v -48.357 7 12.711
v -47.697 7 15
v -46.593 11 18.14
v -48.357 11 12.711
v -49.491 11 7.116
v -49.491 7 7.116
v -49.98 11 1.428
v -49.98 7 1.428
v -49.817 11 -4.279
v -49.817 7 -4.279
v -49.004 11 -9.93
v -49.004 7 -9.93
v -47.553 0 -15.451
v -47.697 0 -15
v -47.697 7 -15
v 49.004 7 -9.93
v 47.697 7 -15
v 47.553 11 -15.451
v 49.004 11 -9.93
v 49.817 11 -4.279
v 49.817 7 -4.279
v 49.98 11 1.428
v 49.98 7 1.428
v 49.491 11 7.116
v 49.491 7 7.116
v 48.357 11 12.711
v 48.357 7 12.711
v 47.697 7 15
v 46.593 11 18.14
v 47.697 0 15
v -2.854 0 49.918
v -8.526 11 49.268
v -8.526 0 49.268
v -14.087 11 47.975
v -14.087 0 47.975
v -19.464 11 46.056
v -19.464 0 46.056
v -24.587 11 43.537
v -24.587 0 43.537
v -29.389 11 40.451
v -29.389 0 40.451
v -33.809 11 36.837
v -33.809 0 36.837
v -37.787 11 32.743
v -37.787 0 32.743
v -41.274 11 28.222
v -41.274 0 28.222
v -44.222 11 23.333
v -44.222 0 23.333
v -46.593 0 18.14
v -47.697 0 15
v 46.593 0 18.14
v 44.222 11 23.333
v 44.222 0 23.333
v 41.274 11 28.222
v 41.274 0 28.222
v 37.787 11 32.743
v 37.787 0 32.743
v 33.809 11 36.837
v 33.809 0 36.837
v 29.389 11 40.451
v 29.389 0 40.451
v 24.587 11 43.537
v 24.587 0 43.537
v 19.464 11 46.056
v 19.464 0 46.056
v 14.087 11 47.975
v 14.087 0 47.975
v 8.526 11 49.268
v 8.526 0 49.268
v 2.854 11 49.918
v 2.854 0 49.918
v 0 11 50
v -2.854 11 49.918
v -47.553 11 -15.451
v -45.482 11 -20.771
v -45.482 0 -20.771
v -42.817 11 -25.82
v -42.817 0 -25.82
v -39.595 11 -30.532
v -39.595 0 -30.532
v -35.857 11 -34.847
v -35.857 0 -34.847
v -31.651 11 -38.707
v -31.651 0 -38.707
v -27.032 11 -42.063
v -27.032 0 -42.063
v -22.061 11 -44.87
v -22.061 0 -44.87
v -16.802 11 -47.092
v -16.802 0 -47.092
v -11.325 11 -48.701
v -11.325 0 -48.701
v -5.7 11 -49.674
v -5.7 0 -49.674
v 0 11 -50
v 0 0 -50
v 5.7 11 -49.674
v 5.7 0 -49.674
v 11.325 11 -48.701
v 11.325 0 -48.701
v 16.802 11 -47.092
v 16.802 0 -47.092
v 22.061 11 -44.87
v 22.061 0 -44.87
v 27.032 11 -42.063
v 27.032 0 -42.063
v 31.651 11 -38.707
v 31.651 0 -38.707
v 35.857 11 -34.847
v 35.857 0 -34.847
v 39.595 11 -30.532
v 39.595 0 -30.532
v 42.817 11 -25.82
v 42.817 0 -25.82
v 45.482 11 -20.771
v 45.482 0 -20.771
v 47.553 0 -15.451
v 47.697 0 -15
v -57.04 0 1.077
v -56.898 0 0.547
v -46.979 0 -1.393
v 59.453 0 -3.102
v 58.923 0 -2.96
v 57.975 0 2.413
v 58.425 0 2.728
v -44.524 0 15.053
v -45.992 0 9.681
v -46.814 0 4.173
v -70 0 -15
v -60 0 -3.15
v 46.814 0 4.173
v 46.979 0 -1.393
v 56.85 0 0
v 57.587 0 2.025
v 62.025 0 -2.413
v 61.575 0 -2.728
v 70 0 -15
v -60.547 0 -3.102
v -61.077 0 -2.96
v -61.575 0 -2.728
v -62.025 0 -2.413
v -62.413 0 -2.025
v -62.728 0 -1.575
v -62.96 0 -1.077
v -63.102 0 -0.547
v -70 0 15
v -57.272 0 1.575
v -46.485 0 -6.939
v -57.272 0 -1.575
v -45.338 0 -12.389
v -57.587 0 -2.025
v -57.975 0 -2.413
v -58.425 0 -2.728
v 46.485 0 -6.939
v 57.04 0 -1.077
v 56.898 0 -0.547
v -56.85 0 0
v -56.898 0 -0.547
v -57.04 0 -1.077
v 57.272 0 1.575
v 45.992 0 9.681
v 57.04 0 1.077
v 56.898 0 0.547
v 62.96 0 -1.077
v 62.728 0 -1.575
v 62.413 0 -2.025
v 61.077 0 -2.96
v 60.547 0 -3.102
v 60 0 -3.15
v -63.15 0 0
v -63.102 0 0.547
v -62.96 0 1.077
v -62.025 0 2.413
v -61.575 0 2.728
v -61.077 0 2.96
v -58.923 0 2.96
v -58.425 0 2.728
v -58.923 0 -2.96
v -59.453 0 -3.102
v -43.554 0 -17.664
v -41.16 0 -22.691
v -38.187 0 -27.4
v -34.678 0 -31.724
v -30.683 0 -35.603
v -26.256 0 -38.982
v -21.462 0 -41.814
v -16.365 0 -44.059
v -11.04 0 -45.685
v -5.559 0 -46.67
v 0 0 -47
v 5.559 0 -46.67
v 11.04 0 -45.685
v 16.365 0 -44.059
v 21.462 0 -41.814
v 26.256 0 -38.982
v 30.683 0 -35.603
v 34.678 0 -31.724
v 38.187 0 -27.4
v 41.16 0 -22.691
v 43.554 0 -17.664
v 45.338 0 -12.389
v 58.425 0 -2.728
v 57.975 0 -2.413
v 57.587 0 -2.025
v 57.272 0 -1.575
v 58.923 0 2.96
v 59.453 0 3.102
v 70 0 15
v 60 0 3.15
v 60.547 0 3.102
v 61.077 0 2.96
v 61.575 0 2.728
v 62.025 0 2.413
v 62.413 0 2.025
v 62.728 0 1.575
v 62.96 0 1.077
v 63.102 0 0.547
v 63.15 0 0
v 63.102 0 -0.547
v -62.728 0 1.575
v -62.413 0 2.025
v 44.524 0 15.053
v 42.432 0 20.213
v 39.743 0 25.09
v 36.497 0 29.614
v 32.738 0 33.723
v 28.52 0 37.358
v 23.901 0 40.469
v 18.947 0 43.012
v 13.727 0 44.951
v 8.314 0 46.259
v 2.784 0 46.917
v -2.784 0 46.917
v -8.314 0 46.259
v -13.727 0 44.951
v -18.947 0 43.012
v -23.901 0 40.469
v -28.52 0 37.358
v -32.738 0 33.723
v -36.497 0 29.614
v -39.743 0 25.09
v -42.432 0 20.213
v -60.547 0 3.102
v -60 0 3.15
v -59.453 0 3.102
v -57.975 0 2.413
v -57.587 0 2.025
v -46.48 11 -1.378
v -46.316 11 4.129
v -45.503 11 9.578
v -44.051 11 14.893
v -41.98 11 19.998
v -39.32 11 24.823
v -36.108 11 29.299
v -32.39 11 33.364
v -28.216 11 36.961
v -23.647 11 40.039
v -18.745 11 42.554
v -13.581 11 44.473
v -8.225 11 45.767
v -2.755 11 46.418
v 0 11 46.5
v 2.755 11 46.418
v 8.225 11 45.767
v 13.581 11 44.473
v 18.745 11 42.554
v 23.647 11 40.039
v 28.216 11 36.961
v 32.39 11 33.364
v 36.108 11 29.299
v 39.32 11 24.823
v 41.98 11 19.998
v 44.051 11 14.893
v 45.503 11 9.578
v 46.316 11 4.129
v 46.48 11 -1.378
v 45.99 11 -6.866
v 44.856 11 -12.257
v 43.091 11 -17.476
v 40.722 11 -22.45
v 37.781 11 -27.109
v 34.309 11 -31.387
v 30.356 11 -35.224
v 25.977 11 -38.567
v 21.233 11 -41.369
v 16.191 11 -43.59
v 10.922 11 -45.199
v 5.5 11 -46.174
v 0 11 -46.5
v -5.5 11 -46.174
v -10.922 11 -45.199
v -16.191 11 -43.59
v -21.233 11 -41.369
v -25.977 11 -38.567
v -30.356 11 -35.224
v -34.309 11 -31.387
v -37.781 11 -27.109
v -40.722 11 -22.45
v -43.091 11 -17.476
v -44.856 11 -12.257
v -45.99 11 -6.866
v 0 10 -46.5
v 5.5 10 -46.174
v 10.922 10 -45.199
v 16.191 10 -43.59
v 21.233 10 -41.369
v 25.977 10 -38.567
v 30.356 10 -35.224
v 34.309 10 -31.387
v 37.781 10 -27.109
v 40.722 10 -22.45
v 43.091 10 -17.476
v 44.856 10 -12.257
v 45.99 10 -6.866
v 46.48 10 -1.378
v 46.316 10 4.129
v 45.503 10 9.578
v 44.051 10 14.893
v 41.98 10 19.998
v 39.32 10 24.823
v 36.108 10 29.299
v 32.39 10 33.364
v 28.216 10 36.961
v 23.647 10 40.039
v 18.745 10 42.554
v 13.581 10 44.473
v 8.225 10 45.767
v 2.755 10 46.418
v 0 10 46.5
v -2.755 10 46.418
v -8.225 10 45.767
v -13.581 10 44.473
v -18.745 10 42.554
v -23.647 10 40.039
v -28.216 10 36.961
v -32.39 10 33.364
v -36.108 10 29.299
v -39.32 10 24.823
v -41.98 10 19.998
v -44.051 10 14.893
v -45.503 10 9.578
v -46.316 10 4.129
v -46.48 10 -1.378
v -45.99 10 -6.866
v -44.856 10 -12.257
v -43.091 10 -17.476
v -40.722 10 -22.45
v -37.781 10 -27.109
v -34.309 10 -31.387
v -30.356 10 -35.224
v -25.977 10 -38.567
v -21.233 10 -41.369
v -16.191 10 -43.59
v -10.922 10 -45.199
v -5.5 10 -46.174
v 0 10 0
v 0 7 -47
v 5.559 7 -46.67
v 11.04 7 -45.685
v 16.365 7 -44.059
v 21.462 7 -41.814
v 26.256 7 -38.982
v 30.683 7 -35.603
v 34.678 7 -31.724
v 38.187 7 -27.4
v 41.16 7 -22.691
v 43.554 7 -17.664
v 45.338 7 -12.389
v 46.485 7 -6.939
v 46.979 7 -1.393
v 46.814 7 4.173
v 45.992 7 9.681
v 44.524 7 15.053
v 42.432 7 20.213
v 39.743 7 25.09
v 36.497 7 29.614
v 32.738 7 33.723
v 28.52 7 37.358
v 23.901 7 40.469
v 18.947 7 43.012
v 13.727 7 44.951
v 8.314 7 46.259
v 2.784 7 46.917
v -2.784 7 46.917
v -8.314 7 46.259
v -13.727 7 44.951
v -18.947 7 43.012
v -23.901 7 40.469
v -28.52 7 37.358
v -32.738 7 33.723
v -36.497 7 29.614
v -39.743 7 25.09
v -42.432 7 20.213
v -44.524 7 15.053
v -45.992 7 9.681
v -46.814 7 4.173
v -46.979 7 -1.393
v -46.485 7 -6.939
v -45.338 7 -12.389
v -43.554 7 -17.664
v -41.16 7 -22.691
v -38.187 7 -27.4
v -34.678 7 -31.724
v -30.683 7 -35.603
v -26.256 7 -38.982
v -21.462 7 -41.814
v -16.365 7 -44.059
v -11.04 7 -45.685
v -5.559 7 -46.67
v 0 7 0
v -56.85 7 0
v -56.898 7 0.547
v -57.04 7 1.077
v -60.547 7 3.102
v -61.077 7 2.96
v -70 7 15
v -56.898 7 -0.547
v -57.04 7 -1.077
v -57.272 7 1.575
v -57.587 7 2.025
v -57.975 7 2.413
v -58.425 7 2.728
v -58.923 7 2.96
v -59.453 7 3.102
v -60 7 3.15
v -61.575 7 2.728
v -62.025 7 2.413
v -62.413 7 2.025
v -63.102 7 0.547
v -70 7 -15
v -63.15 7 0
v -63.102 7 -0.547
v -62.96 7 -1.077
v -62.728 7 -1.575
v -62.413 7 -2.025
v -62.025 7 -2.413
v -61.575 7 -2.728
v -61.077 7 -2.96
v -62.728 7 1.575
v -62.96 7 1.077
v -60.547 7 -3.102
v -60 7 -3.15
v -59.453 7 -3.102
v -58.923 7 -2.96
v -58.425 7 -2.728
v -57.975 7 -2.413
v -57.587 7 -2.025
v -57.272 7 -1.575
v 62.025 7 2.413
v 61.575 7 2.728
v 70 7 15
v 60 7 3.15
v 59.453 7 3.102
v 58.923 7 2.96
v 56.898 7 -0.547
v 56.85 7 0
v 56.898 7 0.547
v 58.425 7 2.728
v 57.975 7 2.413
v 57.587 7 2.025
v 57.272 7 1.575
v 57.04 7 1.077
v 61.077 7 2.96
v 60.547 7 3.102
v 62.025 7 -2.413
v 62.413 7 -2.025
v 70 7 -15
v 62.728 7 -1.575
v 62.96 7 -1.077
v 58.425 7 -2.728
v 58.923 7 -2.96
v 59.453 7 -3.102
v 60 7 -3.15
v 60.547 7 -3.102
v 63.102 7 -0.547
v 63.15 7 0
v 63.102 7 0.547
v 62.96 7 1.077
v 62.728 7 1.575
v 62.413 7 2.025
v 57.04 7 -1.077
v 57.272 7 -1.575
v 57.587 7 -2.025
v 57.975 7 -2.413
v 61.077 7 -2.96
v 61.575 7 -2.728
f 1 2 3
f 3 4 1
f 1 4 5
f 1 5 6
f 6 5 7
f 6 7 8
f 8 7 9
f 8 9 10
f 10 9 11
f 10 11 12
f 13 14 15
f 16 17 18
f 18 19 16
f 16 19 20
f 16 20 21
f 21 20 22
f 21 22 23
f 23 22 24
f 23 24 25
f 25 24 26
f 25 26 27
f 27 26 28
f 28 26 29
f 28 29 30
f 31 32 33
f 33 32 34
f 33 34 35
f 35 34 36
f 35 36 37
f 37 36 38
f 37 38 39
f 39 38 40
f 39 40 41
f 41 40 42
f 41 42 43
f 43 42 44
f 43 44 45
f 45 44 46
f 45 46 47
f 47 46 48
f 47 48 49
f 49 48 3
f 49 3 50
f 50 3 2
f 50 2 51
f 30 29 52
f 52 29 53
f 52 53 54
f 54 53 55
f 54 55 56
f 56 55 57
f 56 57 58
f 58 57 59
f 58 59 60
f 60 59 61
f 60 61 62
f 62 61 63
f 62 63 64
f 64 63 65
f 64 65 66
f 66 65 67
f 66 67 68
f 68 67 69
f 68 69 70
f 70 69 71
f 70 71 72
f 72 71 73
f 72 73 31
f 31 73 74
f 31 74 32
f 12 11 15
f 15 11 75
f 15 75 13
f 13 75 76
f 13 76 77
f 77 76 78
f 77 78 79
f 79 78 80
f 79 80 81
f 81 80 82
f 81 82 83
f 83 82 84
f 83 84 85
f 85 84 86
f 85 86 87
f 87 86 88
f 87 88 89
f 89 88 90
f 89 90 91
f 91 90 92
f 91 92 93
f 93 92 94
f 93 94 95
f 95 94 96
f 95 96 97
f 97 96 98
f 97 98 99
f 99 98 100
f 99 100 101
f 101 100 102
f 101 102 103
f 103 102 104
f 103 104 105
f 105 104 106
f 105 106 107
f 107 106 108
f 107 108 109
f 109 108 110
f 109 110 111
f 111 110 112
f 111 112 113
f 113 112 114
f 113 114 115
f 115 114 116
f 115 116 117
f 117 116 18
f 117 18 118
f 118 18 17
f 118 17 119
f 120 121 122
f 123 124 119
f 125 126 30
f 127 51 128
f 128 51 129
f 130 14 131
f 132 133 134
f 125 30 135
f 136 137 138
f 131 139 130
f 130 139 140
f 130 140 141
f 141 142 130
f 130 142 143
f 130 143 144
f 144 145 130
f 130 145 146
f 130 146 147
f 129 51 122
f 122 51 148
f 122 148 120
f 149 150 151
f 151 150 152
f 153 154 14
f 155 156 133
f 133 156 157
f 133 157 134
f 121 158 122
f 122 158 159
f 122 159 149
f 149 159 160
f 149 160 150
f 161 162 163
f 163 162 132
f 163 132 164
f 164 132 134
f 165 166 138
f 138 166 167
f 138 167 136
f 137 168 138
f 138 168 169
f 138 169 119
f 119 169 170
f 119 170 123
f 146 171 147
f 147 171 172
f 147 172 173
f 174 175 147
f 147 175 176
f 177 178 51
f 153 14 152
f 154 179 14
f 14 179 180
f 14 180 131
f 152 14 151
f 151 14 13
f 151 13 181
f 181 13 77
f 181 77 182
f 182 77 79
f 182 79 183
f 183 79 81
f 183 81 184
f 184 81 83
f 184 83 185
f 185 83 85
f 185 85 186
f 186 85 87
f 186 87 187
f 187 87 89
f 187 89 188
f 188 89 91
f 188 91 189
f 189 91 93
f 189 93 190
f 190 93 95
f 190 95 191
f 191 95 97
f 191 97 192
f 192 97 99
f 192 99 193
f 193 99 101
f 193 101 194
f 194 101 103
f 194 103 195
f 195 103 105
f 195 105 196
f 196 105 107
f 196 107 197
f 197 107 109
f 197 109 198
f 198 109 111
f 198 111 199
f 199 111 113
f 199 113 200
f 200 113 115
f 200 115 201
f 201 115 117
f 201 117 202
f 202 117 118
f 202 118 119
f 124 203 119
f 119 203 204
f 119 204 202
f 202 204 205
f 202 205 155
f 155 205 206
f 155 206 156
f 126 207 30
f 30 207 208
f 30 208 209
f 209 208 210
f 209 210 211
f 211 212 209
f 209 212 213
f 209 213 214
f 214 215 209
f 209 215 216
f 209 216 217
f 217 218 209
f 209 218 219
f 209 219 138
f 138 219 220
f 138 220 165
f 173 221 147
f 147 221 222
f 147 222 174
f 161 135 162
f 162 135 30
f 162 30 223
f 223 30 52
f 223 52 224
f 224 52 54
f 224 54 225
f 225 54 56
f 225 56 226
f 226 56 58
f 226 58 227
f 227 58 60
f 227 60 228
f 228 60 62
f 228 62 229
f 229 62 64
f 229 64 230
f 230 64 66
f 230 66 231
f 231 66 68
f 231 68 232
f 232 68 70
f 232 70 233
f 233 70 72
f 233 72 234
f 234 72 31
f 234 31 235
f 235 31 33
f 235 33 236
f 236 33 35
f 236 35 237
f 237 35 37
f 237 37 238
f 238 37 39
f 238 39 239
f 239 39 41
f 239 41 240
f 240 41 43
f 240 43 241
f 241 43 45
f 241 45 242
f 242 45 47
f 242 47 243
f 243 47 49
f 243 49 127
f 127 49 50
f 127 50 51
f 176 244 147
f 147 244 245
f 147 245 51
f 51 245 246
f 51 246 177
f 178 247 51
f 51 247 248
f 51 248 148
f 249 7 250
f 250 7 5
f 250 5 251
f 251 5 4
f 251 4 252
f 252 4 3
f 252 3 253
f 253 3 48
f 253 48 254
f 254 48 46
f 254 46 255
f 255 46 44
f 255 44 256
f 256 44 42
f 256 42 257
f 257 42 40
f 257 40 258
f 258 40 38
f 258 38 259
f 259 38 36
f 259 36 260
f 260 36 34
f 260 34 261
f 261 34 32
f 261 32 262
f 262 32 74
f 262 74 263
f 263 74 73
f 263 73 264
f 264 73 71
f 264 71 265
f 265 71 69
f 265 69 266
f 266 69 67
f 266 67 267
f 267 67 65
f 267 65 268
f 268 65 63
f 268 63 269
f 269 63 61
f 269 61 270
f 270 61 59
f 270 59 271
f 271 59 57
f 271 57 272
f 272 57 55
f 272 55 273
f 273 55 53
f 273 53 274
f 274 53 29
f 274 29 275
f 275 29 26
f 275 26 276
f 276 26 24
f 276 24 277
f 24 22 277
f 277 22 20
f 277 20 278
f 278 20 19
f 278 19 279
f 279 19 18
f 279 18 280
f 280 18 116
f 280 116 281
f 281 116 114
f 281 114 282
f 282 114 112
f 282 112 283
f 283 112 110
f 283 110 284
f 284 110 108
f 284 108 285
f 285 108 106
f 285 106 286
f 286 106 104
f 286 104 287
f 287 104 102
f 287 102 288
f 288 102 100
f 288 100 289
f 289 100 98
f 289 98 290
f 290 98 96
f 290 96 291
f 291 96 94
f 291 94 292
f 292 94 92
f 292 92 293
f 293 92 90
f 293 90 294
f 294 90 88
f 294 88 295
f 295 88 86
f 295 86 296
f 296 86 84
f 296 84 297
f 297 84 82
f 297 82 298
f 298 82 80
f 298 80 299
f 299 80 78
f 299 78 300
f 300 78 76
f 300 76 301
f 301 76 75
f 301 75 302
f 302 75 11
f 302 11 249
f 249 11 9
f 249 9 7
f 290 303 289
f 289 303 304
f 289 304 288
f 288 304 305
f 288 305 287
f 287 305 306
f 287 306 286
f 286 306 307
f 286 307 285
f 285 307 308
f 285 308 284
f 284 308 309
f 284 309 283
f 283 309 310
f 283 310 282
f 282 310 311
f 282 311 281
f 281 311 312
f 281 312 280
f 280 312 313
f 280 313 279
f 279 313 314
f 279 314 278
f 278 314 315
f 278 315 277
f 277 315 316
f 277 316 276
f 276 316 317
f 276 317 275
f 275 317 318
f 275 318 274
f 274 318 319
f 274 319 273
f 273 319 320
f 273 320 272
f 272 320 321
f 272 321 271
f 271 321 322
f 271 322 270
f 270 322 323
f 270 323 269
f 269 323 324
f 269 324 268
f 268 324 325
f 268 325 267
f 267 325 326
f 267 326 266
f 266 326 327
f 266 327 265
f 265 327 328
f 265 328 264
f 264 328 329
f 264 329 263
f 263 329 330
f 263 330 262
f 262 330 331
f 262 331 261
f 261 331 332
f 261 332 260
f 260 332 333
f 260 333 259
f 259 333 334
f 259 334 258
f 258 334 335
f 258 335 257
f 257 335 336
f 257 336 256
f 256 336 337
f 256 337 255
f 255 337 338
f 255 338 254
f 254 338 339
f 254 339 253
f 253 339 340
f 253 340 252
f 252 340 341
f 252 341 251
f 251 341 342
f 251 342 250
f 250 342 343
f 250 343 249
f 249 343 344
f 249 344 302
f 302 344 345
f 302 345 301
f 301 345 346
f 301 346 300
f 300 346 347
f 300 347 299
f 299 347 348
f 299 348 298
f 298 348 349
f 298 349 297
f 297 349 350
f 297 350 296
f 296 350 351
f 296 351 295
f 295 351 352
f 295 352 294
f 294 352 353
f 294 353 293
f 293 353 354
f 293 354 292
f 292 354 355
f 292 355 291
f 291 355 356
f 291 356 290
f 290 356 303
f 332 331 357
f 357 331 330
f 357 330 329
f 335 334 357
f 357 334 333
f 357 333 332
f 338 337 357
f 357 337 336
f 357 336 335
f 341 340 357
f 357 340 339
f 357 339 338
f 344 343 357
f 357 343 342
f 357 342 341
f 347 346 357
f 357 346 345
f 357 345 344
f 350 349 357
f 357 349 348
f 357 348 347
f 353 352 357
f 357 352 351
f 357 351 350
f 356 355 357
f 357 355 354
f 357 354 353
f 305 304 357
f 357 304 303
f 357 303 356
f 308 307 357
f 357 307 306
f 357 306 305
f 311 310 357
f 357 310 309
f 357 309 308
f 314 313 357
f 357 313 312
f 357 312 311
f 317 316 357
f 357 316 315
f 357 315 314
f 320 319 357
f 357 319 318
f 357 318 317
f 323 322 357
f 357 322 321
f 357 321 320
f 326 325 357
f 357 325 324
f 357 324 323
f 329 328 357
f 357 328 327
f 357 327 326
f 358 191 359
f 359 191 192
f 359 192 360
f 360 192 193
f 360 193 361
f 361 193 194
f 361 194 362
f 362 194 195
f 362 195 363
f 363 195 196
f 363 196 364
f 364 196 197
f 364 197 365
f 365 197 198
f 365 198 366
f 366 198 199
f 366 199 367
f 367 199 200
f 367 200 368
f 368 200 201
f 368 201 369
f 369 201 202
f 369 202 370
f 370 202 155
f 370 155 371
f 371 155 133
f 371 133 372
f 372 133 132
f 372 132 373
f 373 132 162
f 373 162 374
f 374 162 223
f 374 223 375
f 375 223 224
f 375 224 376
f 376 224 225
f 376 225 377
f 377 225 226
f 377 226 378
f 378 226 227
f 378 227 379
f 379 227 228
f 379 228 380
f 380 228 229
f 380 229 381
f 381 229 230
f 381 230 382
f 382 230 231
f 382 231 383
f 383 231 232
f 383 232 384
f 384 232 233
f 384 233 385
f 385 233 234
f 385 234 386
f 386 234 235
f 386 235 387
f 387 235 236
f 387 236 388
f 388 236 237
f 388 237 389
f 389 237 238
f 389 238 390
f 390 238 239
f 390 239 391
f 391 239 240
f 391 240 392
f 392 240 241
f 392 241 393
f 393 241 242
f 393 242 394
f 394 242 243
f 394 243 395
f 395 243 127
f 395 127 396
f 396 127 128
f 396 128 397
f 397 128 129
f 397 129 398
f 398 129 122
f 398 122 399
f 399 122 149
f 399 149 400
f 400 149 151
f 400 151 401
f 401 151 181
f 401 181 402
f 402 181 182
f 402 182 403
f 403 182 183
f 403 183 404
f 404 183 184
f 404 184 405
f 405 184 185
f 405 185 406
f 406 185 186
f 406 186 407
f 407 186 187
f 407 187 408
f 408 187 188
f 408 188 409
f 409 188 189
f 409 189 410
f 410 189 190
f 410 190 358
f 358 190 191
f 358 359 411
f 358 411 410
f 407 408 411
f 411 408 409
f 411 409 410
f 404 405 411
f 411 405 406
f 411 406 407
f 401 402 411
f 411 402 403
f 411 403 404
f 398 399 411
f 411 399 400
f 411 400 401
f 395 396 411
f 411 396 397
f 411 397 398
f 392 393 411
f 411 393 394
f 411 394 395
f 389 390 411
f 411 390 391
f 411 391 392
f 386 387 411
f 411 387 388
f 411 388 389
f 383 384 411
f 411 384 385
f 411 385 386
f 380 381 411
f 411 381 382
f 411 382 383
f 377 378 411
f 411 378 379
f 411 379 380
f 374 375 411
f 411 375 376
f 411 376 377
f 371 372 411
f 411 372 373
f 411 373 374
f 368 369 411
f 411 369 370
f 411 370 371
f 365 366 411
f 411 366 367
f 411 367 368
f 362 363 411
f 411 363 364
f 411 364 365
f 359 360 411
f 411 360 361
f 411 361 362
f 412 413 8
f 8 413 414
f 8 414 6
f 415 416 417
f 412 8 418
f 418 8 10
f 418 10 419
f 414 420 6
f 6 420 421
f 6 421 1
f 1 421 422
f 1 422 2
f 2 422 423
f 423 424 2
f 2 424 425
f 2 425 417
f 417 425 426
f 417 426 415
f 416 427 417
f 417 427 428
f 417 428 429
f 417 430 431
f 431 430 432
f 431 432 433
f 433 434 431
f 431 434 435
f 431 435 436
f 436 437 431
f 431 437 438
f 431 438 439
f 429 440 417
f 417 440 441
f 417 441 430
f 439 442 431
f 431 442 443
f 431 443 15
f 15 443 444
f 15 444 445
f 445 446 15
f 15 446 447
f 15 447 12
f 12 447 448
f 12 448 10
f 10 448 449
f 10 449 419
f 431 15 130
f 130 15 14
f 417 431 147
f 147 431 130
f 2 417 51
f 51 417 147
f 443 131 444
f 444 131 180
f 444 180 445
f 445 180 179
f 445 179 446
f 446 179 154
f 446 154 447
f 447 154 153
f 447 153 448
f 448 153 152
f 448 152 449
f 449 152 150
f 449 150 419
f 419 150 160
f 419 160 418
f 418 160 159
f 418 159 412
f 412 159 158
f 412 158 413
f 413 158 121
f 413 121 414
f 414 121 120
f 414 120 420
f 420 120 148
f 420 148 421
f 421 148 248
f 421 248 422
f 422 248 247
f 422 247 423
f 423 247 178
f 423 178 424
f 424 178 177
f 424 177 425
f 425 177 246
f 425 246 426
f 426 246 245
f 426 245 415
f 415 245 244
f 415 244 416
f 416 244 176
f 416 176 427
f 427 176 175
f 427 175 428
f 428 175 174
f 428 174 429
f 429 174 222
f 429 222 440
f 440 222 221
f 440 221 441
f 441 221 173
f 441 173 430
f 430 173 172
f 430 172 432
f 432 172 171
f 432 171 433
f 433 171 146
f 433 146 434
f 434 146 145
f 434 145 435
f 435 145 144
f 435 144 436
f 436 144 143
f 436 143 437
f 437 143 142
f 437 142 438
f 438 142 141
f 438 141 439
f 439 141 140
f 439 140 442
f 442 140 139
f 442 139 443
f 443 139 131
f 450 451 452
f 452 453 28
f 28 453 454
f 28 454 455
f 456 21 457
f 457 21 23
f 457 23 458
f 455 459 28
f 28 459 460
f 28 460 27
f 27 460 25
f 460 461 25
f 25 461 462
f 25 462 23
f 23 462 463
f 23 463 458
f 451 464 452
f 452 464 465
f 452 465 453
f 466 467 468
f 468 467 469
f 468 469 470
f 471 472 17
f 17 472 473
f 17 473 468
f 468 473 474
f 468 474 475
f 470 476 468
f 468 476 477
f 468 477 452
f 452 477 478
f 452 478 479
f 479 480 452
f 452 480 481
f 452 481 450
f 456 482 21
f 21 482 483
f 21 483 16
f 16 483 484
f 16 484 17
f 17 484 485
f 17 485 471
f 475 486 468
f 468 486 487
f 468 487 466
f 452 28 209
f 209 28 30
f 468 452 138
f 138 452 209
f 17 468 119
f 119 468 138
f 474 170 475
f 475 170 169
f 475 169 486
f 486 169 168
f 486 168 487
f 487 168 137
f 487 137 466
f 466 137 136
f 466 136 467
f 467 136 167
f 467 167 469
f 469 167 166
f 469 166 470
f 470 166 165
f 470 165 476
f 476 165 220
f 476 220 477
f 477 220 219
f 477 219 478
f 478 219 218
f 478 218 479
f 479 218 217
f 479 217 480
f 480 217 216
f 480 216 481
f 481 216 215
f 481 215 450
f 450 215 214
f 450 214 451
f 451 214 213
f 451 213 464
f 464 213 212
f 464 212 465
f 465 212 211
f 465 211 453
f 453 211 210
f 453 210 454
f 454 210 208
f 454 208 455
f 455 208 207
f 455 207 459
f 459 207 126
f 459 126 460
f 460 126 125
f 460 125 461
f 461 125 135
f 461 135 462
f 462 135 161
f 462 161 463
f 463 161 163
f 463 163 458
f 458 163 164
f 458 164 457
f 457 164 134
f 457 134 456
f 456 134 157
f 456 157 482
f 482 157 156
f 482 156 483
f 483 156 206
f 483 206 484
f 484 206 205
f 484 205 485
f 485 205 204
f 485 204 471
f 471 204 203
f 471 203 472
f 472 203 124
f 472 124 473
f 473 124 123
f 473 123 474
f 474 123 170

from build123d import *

# Parameters (mm, degrees)
SKETCH1_R           = 50
BOSS_EXTRUDE1_DEPTH = 10
SKETCH2_R           = 50
SKETCH2_R_2         = 46.5
BOSS_EXTRUDE2_DEPTH = 1
SKETCH3_R           = 47
CUT_EXTRUDE1_DEPTH  = 7
SKETCH4_R           = 3.15
BOSS_EXTRUDE3_DEPTH = 7


with BuildPart() as part:
    # Sketch1 → Boss-Extrude1 (new body)
    with BuildSketch(Plane(origin=(0, 0, 0), x_dir=(1, 0, 0), z_dir=(0, 1, 0))):
        Circle(SKETCH1_R)
    extrude(amount=BOSS_EXTRUDE1_DEPTH)

    # Sketch2 → Boss-Extrude2 (add)
    with BuildSketch(Plane(origin=(0, 10, 0), x_dir=(1, 0, 0), z_dir=(0, 1, 0))):
        Circle(SKETCH2_R)
        Circle(SKETCH2_R_2, mode=Mode.SUBTRACT)
    extrude(amount=BOSS_EXTRUDE2_DEPTH)

    # Sketch3 → Cut-Extrude1 (cut)
    with BuildSketch(Plane.XZ):
        Circle(SKETCH3_R)
    extrude(amount=-CUT_EXTRUDE1_DEPTH, mode=Mode.SUBTRACT)

    # Sketch4 → Boss-Extrude3 (add)
    with BuildSketch(Plane(origin=(0, 0, 0), x_dir=(1, 0, 0), z_dir=(0, 1, 0))):
        with BuildLine():
            Line((-47.696960071, 15), (-70, 15))
            Line((-70, 15), (-70, -15))
            Line((-70, -15), (-47.696960071, -15))
            ThreePointArc((-47.696960071, -15), (-50, 0), (-47.696960071, 15))
        make_face()
        with Locations((-60, 0)):
            Circle(SKETCH4_R, mode=Mode.SUBTRACT)
        with BuildLine():
            Line((47.696960071, -15), (70, -15))
            Line((70, -15), (70, 15))
            Line((70, 15), (47.696960071, 15))
            ThreePointArc((47.696960071, 15), (50, 0), (47.696960071, -15))
        make_face()
        with Locations((60, 0)):
            Circle(SKETCH4_R, mode=Mode.SUBTRACT)
    extrude(amount=BOSS_EXTRUDE3_DEPTH)


solid = part.part
